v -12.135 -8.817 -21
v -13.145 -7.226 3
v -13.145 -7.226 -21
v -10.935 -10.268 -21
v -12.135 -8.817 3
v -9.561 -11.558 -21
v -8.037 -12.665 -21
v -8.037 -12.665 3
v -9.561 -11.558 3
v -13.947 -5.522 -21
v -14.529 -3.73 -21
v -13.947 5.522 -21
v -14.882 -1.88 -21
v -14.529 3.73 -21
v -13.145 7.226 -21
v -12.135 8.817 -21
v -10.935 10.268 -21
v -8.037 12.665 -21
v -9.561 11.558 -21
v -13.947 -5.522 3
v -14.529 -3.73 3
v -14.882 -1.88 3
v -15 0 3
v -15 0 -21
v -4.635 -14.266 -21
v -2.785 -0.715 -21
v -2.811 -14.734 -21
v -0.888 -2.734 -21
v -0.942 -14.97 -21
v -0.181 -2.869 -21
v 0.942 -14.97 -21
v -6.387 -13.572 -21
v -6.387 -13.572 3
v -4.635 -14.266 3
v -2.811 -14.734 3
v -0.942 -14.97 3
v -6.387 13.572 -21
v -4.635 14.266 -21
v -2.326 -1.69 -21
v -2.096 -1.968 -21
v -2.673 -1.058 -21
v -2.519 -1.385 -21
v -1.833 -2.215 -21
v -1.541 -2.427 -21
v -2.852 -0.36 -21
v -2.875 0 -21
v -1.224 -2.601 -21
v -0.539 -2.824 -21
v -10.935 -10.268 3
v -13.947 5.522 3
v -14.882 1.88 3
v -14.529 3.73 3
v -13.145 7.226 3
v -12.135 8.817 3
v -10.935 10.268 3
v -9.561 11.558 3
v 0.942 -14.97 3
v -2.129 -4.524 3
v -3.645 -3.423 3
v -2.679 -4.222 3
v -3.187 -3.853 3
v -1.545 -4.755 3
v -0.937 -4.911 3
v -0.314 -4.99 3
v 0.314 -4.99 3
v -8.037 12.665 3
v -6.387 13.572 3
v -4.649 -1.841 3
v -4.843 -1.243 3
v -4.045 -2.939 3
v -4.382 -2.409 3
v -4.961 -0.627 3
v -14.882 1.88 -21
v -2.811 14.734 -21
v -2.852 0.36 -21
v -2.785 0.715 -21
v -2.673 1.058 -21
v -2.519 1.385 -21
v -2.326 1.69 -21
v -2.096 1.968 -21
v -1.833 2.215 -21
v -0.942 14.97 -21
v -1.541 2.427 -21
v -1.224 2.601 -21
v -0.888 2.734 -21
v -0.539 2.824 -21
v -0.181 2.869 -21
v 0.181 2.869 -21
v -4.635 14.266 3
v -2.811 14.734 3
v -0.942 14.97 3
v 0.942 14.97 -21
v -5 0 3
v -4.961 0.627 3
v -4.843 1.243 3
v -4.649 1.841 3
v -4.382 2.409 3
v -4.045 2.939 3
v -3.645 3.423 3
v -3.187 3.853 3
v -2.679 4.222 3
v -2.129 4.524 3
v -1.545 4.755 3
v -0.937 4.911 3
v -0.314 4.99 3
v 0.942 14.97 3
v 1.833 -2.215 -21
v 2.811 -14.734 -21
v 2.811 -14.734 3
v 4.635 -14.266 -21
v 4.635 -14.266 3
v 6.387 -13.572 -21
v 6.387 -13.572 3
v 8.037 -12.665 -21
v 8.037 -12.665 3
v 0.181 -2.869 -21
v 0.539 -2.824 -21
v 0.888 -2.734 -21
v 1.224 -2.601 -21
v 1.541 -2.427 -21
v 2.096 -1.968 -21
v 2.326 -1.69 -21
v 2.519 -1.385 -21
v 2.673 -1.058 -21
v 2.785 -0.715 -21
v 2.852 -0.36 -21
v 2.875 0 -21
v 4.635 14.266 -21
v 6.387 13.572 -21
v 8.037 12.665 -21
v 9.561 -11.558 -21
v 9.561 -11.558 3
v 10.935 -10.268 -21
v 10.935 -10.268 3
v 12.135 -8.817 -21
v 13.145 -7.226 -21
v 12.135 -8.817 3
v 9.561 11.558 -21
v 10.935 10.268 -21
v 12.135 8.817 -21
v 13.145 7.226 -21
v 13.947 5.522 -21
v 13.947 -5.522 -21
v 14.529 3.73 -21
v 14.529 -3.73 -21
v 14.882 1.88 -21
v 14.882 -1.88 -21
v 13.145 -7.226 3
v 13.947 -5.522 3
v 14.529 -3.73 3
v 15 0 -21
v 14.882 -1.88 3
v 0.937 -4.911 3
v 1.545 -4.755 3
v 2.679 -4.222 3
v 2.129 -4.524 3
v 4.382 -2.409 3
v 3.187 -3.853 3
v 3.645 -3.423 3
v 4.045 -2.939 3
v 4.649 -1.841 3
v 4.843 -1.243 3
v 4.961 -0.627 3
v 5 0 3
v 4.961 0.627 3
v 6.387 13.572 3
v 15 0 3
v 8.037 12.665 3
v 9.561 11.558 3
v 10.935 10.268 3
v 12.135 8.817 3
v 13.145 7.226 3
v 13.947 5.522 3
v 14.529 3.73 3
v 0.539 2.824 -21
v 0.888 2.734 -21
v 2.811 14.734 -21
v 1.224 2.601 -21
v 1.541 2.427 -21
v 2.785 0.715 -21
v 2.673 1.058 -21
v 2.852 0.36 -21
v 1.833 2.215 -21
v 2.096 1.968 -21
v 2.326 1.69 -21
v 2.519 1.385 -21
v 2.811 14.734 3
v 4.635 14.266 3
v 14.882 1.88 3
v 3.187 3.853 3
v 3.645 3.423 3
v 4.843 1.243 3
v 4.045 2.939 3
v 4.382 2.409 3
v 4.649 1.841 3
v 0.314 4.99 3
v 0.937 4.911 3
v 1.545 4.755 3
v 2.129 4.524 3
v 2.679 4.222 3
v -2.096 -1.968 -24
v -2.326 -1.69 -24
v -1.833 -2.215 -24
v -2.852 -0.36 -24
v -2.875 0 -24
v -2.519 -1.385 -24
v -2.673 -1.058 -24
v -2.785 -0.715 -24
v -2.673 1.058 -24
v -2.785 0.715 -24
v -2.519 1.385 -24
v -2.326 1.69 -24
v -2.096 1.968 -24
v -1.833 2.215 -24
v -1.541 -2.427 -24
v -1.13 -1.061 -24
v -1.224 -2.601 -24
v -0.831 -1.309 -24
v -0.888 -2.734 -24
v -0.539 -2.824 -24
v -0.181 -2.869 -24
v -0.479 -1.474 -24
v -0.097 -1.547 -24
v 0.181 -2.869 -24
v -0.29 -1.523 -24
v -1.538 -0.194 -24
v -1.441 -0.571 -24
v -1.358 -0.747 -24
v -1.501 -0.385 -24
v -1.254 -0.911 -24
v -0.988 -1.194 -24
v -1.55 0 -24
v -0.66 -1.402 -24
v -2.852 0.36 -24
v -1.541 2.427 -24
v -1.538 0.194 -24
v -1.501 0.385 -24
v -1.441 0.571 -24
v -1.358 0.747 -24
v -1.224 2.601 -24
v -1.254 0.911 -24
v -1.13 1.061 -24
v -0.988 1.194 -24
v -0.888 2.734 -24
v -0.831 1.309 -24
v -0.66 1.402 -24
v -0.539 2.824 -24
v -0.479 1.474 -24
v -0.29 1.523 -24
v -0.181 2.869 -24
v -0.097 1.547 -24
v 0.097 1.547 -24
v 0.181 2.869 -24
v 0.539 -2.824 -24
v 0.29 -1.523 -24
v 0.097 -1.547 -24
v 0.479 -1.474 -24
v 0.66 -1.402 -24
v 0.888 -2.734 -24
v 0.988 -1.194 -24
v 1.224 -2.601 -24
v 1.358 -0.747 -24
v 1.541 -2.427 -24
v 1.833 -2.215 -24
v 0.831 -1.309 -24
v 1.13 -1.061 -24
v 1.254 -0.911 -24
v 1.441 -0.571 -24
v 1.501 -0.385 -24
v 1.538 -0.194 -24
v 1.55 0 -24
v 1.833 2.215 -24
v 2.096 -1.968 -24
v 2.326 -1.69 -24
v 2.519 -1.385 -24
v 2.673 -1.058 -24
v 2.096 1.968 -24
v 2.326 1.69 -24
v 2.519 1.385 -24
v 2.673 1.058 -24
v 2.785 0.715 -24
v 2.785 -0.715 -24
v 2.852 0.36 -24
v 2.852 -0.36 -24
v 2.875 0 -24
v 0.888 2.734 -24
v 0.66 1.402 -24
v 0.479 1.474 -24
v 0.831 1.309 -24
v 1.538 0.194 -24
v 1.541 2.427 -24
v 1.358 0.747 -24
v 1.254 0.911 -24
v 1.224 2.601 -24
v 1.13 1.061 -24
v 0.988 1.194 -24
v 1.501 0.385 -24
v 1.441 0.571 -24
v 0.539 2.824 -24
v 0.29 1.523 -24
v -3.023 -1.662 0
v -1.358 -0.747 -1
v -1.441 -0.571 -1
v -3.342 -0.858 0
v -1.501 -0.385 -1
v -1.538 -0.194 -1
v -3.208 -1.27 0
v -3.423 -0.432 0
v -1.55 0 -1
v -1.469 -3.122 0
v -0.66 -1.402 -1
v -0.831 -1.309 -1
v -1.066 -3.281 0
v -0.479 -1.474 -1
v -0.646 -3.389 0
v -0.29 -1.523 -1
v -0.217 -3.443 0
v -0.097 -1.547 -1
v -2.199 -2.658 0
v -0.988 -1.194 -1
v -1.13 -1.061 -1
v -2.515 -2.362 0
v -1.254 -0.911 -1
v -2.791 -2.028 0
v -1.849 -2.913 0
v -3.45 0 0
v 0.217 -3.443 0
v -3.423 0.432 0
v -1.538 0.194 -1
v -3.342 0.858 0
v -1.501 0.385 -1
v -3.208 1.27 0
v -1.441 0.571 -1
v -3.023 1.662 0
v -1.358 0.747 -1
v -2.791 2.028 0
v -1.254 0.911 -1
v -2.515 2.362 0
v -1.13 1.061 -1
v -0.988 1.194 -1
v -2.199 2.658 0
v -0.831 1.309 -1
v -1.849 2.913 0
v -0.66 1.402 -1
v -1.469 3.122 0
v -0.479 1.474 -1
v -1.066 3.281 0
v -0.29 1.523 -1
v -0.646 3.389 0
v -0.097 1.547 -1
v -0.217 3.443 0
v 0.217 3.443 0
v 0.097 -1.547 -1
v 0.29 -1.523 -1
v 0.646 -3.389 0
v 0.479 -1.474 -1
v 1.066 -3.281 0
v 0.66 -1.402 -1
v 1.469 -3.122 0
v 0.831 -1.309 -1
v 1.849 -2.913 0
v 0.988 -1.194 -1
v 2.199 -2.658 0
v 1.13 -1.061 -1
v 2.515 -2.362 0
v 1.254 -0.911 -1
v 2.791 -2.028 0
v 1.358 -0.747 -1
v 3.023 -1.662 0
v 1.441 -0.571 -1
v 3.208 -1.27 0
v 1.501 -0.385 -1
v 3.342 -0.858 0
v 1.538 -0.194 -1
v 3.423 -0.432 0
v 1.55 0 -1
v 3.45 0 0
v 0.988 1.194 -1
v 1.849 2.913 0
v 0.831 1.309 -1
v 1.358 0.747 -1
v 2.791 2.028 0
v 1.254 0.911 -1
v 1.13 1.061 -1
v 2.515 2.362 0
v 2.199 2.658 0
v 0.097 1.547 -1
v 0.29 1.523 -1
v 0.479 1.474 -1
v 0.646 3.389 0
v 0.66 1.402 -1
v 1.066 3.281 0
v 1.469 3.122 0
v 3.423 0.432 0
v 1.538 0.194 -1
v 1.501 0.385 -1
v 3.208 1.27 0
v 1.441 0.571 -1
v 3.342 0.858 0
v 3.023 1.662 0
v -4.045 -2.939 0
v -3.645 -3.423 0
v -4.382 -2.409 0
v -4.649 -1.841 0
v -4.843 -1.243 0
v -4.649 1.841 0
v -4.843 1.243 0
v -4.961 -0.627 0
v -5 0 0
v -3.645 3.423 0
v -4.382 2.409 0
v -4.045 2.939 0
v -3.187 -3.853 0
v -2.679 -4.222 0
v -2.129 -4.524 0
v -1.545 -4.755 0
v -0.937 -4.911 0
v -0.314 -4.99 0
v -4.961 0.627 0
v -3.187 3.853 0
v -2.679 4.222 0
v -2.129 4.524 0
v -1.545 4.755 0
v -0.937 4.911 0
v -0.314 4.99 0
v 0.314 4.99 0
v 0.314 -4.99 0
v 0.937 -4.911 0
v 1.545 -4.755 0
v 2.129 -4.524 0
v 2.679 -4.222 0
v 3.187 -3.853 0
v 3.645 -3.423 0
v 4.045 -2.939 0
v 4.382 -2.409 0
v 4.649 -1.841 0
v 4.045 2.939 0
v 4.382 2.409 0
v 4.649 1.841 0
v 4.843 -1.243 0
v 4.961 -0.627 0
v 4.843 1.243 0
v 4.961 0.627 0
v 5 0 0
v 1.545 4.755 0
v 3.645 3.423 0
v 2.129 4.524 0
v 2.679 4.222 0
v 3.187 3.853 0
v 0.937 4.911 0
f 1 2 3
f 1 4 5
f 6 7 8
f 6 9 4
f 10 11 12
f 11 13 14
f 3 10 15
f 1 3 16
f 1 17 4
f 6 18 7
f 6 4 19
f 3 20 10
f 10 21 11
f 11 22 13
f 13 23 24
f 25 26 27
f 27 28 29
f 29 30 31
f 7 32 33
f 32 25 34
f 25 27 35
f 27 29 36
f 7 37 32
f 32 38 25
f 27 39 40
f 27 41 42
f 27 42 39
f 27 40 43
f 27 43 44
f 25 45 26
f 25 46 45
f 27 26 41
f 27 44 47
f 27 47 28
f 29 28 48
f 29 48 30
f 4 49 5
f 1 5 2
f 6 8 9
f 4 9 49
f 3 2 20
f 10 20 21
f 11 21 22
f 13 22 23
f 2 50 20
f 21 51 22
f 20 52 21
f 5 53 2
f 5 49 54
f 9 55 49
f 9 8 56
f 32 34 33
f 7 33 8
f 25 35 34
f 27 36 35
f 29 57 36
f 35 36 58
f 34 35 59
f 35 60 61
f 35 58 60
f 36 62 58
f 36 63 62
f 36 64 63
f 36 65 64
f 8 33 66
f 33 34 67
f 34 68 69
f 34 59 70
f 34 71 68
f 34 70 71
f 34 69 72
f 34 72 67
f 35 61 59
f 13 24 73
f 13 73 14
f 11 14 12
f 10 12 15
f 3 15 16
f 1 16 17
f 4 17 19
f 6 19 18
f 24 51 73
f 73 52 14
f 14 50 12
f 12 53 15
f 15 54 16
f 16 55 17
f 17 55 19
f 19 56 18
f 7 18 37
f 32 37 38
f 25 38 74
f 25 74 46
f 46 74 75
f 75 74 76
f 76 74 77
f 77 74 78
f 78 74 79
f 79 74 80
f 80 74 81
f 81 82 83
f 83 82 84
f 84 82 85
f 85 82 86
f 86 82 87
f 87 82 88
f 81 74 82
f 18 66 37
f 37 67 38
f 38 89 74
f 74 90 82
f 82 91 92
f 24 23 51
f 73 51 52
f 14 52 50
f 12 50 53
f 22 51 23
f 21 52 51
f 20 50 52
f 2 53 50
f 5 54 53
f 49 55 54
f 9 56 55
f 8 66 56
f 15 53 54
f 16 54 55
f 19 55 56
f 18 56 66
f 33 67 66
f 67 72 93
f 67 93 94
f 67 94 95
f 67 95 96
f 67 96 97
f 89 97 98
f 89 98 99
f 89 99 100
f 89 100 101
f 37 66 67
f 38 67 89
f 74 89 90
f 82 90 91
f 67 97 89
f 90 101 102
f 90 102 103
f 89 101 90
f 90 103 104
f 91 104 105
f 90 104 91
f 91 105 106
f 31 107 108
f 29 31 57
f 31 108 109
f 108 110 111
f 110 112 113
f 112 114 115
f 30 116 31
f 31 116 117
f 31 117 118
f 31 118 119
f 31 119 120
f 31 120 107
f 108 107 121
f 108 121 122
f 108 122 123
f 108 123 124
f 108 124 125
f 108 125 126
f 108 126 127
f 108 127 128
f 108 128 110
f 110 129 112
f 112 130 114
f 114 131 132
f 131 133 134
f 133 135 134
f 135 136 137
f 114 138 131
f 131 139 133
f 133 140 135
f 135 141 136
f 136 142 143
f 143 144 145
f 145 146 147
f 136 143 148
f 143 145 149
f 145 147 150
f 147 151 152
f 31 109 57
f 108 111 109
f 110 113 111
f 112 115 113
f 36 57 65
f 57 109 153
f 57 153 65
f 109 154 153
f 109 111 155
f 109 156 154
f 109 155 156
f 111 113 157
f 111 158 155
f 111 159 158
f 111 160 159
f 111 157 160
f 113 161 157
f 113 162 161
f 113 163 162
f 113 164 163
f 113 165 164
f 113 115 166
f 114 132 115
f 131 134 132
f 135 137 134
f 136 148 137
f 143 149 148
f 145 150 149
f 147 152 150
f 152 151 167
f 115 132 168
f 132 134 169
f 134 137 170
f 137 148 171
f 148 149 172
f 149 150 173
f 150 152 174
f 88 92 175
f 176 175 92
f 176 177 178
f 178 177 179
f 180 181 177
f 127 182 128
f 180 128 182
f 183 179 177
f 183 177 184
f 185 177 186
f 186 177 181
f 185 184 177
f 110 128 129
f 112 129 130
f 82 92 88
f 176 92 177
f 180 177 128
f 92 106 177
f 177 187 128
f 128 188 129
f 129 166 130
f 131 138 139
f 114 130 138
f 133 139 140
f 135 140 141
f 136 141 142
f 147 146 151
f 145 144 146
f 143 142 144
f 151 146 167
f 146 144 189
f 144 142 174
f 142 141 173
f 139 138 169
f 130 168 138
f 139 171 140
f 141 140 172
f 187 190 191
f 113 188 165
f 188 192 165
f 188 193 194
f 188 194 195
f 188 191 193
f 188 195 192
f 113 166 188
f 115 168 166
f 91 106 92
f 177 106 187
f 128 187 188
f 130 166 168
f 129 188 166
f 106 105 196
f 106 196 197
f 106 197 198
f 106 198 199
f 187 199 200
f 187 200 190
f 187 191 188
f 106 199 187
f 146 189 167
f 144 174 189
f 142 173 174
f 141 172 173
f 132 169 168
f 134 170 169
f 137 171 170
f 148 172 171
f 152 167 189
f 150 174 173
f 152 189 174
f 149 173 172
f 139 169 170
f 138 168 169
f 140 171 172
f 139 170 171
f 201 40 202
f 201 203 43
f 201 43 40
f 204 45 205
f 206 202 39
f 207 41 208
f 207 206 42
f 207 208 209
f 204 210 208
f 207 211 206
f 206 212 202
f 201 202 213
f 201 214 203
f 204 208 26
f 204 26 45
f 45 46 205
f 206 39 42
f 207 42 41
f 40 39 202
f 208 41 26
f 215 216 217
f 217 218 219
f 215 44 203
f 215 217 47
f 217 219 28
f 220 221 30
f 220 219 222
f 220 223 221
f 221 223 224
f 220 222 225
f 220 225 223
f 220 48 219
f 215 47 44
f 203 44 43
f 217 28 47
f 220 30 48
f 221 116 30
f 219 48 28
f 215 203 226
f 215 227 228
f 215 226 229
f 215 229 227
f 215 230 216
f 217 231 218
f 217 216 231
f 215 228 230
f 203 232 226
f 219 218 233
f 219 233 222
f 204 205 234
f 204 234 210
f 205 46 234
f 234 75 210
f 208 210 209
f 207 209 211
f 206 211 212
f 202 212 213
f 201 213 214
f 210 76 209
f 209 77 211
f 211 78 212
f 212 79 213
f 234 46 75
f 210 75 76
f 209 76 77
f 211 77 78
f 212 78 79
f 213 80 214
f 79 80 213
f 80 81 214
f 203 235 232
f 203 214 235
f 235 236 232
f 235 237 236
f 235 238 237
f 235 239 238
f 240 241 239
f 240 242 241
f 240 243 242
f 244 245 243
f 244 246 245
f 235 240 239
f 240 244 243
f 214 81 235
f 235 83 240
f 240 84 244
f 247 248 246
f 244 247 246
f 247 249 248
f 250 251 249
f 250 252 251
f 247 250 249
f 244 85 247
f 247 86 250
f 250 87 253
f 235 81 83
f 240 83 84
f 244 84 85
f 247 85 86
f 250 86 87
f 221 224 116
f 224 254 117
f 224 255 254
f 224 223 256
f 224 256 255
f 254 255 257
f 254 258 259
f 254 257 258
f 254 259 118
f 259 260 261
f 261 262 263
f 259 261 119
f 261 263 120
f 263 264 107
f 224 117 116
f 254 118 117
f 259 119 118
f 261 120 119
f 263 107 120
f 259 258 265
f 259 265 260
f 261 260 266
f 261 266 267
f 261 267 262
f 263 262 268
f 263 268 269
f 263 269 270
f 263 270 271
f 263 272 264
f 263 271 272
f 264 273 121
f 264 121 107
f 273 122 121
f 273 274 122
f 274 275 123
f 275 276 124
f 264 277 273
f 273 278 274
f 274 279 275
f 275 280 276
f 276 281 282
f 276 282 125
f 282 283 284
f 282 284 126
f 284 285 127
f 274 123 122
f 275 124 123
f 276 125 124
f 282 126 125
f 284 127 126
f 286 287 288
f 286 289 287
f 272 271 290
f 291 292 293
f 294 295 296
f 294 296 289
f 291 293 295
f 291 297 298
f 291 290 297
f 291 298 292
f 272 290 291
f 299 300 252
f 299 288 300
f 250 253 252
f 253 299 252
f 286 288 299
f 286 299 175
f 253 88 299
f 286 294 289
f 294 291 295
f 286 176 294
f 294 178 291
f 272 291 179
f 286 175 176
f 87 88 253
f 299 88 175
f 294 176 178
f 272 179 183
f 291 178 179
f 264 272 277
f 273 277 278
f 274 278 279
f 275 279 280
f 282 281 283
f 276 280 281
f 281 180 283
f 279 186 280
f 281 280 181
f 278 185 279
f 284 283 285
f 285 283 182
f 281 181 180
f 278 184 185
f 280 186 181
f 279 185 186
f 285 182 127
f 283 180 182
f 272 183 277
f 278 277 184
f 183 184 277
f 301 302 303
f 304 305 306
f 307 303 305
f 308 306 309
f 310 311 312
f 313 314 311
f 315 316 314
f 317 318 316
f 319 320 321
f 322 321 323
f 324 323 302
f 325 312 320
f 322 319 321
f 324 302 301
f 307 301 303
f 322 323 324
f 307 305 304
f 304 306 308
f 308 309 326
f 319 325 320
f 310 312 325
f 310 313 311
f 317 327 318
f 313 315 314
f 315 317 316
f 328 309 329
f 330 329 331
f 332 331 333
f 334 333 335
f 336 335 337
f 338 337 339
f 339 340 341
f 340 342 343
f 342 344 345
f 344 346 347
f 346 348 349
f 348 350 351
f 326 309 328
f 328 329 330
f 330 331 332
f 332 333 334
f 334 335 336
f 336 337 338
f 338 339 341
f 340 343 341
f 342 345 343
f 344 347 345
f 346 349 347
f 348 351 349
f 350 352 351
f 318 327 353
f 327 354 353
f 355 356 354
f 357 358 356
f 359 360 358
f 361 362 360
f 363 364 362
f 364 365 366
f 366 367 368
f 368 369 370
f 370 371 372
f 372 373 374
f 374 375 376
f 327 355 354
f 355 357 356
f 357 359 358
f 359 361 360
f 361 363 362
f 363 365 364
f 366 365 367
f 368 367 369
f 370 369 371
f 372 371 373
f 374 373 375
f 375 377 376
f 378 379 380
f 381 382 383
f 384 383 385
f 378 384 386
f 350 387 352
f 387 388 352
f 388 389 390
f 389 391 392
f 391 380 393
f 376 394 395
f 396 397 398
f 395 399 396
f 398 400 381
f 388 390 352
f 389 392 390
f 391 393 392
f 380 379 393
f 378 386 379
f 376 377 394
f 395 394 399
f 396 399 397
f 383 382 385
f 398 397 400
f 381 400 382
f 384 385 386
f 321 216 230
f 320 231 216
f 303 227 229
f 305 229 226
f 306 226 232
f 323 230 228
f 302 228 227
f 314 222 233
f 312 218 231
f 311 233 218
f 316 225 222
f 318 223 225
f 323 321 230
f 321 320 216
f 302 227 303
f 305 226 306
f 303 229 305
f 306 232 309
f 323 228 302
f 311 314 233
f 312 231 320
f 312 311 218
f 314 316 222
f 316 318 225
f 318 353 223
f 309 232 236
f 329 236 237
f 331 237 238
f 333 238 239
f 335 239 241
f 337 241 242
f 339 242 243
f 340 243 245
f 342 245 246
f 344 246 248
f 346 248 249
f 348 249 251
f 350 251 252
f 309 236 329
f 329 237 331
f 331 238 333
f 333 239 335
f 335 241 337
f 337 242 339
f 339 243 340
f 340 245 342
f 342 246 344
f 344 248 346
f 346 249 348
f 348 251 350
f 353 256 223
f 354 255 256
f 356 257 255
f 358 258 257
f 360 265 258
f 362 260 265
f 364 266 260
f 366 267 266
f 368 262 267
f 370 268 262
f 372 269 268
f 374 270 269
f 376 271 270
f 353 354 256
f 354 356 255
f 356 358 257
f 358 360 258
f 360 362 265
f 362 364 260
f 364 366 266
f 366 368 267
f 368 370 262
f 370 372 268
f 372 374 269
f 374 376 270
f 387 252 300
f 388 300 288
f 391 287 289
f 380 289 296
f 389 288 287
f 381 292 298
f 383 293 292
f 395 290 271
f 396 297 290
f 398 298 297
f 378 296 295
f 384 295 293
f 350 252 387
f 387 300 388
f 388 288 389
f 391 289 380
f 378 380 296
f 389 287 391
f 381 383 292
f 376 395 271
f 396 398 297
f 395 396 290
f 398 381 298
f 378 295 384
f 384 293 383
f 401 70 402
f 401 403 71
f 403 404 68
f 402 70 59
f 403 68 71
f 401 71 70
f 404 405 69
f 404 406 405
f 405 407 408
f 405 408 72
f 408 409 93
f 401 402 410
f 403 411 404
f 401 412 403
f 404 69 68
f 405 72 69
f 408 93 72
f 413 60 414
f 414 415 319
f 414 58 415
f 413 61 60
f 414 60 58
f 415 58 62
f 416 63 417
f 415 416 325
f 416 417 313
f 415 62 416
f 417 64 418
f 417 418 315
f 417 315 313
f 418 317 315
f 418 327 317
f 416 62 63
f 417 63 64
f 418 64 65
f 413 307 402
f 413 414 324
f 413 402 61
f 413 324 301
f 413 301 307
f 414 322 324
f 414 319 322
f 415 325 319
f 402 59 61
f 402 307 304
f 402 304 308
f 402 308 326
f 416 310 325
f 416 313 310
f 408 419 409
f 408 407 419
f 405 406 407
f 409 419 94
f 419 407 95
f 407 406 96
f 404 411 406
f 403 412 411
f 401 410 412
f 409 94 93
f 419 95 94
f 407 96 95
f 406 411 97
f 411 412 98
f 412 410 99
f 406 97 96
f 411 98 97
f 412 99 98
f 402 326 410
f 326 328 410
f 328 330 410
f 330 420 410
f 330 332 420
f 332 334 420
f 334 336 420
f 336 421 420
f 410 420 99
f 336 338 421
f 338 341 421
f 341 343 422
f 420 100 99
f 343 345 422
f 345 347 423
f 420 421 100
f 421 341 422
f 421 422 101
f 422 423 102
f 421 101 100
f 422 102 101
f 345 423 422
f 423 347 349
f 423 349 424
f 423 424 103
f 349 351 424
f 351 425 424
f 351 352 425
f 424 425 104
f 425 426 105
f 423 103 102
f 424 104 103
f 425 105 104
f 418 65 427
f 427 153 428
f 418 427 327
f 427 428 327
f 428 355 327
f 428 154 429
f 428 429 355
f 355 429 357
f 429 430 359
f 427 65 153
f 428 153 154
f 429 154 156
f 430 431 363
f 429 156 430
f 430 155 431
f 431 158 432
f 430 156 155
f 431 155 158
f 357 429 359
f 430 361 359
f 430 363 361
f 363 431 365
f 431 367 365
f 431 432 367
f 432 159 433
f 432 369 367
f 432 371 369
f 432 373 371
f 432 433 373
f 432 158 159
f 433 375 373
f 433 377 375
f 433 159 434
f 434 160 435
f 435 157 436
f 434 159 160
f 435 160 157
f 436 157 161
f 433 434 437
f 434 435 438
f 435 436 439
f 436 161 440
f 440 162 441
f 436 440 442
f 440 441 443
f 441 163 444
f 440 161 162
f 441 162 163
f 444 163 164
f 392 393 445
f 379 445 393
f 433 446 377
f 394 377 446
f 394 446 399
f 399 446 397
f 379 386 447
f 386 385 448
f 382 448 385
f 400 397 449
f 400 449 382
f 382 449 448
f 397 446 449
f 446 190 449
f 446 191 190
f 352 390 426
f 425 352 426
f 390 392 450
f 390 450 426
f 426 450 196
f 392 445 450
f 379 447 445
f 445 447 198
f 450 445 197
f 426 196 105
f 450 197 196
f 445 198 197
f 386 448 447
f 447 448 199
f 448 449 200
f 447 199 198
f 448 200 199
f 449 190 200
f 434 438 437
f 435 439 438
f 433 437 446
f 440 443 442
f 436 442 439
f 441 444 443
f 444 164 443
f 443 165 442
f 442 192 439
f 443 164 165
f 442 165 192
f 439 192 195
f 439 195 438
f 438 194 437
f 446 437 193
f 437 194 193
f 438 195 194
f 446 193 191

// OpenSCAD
$fn = 50;

difference() {
	union() {
		translate(v = [0, 0, -21.0]) {
			cylinder(h = 24, r = 15.0);
		}
		#translate(v = [0, 0, -24.0]) {
			cylinder(h = 24, r = 2.875);
		}
	}
	union() {
		translate(v = [0, 0, 0]) {
			rotate(a = [0, 0, 0]) {
				difference() {
					union() {
						translate(v = [0, 0, -24.0]) {
							cylinder(h = 24, r = 1.25);
						}
						translate(v = [0, 0, -1.0]) {
							cylinder(h = 1.0, r1 = 1.55, r2 = 3.45);
						}
						translate(v = [0, 0, -24.0]) {
							cylinder(h = 24, r = 1.55);
						}
						translate(v = [0, 0, -24.0]) {
							cylinder(h = 24, r = 1.25);
						}
					}
					union();
				}
			}
		}
		#cylinder(h = 3, r = 5.0);
	}
}
